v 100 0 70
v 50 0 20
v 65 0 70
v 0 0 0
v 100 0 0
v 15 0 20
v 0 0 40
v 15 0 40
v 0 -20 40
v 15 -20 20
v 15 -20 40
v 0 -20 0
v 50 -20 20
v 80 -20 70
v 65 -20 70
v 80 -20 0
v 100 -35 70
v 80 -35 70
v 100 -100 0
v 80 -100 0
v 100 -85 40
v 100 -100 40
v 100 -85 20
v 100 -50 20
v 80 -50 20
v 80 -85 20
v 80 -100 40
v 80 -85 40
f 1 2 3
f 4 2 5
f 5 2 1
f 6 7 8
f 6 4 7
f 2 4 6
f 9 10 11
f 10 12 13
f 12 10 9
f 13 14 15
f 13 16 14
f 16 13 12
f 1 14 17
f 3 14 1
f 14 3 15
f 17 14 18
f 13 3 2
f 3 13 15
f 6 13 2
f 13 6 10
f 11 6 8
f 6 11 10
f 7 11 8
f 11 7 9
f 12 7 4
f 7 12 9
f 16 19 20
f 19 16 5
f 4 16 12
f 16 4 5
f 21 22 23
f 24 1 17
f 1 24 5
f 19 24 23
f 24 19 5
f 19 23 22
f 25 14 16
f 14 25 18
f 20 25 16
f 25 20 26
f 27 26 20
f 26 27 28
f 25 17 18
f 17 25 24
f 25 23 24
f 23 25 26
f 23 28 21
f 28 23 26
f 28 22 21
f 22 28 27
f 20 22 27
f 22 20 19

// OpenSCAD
// 基礎部分
module plank(rotate_x, rotate_y, rotate_z){

	rotate([rotate_x, rotate_y, rotate_z]){

		// 厚みを20mmに設定
		linear_extrude(20){

			polygon(points=[[0, 0], [0, 40], [15, 40], [15, 20], [50, 20], [65, 70], [100, 70], [100, 0]]); //時計回り

		}

	}

}

color("red")
plank(90, 0, 0);

// x方向に80mm,y軸方向に-100mm移動
translate([80, -100, 0]){

	plank(90, 0, 90);

}
